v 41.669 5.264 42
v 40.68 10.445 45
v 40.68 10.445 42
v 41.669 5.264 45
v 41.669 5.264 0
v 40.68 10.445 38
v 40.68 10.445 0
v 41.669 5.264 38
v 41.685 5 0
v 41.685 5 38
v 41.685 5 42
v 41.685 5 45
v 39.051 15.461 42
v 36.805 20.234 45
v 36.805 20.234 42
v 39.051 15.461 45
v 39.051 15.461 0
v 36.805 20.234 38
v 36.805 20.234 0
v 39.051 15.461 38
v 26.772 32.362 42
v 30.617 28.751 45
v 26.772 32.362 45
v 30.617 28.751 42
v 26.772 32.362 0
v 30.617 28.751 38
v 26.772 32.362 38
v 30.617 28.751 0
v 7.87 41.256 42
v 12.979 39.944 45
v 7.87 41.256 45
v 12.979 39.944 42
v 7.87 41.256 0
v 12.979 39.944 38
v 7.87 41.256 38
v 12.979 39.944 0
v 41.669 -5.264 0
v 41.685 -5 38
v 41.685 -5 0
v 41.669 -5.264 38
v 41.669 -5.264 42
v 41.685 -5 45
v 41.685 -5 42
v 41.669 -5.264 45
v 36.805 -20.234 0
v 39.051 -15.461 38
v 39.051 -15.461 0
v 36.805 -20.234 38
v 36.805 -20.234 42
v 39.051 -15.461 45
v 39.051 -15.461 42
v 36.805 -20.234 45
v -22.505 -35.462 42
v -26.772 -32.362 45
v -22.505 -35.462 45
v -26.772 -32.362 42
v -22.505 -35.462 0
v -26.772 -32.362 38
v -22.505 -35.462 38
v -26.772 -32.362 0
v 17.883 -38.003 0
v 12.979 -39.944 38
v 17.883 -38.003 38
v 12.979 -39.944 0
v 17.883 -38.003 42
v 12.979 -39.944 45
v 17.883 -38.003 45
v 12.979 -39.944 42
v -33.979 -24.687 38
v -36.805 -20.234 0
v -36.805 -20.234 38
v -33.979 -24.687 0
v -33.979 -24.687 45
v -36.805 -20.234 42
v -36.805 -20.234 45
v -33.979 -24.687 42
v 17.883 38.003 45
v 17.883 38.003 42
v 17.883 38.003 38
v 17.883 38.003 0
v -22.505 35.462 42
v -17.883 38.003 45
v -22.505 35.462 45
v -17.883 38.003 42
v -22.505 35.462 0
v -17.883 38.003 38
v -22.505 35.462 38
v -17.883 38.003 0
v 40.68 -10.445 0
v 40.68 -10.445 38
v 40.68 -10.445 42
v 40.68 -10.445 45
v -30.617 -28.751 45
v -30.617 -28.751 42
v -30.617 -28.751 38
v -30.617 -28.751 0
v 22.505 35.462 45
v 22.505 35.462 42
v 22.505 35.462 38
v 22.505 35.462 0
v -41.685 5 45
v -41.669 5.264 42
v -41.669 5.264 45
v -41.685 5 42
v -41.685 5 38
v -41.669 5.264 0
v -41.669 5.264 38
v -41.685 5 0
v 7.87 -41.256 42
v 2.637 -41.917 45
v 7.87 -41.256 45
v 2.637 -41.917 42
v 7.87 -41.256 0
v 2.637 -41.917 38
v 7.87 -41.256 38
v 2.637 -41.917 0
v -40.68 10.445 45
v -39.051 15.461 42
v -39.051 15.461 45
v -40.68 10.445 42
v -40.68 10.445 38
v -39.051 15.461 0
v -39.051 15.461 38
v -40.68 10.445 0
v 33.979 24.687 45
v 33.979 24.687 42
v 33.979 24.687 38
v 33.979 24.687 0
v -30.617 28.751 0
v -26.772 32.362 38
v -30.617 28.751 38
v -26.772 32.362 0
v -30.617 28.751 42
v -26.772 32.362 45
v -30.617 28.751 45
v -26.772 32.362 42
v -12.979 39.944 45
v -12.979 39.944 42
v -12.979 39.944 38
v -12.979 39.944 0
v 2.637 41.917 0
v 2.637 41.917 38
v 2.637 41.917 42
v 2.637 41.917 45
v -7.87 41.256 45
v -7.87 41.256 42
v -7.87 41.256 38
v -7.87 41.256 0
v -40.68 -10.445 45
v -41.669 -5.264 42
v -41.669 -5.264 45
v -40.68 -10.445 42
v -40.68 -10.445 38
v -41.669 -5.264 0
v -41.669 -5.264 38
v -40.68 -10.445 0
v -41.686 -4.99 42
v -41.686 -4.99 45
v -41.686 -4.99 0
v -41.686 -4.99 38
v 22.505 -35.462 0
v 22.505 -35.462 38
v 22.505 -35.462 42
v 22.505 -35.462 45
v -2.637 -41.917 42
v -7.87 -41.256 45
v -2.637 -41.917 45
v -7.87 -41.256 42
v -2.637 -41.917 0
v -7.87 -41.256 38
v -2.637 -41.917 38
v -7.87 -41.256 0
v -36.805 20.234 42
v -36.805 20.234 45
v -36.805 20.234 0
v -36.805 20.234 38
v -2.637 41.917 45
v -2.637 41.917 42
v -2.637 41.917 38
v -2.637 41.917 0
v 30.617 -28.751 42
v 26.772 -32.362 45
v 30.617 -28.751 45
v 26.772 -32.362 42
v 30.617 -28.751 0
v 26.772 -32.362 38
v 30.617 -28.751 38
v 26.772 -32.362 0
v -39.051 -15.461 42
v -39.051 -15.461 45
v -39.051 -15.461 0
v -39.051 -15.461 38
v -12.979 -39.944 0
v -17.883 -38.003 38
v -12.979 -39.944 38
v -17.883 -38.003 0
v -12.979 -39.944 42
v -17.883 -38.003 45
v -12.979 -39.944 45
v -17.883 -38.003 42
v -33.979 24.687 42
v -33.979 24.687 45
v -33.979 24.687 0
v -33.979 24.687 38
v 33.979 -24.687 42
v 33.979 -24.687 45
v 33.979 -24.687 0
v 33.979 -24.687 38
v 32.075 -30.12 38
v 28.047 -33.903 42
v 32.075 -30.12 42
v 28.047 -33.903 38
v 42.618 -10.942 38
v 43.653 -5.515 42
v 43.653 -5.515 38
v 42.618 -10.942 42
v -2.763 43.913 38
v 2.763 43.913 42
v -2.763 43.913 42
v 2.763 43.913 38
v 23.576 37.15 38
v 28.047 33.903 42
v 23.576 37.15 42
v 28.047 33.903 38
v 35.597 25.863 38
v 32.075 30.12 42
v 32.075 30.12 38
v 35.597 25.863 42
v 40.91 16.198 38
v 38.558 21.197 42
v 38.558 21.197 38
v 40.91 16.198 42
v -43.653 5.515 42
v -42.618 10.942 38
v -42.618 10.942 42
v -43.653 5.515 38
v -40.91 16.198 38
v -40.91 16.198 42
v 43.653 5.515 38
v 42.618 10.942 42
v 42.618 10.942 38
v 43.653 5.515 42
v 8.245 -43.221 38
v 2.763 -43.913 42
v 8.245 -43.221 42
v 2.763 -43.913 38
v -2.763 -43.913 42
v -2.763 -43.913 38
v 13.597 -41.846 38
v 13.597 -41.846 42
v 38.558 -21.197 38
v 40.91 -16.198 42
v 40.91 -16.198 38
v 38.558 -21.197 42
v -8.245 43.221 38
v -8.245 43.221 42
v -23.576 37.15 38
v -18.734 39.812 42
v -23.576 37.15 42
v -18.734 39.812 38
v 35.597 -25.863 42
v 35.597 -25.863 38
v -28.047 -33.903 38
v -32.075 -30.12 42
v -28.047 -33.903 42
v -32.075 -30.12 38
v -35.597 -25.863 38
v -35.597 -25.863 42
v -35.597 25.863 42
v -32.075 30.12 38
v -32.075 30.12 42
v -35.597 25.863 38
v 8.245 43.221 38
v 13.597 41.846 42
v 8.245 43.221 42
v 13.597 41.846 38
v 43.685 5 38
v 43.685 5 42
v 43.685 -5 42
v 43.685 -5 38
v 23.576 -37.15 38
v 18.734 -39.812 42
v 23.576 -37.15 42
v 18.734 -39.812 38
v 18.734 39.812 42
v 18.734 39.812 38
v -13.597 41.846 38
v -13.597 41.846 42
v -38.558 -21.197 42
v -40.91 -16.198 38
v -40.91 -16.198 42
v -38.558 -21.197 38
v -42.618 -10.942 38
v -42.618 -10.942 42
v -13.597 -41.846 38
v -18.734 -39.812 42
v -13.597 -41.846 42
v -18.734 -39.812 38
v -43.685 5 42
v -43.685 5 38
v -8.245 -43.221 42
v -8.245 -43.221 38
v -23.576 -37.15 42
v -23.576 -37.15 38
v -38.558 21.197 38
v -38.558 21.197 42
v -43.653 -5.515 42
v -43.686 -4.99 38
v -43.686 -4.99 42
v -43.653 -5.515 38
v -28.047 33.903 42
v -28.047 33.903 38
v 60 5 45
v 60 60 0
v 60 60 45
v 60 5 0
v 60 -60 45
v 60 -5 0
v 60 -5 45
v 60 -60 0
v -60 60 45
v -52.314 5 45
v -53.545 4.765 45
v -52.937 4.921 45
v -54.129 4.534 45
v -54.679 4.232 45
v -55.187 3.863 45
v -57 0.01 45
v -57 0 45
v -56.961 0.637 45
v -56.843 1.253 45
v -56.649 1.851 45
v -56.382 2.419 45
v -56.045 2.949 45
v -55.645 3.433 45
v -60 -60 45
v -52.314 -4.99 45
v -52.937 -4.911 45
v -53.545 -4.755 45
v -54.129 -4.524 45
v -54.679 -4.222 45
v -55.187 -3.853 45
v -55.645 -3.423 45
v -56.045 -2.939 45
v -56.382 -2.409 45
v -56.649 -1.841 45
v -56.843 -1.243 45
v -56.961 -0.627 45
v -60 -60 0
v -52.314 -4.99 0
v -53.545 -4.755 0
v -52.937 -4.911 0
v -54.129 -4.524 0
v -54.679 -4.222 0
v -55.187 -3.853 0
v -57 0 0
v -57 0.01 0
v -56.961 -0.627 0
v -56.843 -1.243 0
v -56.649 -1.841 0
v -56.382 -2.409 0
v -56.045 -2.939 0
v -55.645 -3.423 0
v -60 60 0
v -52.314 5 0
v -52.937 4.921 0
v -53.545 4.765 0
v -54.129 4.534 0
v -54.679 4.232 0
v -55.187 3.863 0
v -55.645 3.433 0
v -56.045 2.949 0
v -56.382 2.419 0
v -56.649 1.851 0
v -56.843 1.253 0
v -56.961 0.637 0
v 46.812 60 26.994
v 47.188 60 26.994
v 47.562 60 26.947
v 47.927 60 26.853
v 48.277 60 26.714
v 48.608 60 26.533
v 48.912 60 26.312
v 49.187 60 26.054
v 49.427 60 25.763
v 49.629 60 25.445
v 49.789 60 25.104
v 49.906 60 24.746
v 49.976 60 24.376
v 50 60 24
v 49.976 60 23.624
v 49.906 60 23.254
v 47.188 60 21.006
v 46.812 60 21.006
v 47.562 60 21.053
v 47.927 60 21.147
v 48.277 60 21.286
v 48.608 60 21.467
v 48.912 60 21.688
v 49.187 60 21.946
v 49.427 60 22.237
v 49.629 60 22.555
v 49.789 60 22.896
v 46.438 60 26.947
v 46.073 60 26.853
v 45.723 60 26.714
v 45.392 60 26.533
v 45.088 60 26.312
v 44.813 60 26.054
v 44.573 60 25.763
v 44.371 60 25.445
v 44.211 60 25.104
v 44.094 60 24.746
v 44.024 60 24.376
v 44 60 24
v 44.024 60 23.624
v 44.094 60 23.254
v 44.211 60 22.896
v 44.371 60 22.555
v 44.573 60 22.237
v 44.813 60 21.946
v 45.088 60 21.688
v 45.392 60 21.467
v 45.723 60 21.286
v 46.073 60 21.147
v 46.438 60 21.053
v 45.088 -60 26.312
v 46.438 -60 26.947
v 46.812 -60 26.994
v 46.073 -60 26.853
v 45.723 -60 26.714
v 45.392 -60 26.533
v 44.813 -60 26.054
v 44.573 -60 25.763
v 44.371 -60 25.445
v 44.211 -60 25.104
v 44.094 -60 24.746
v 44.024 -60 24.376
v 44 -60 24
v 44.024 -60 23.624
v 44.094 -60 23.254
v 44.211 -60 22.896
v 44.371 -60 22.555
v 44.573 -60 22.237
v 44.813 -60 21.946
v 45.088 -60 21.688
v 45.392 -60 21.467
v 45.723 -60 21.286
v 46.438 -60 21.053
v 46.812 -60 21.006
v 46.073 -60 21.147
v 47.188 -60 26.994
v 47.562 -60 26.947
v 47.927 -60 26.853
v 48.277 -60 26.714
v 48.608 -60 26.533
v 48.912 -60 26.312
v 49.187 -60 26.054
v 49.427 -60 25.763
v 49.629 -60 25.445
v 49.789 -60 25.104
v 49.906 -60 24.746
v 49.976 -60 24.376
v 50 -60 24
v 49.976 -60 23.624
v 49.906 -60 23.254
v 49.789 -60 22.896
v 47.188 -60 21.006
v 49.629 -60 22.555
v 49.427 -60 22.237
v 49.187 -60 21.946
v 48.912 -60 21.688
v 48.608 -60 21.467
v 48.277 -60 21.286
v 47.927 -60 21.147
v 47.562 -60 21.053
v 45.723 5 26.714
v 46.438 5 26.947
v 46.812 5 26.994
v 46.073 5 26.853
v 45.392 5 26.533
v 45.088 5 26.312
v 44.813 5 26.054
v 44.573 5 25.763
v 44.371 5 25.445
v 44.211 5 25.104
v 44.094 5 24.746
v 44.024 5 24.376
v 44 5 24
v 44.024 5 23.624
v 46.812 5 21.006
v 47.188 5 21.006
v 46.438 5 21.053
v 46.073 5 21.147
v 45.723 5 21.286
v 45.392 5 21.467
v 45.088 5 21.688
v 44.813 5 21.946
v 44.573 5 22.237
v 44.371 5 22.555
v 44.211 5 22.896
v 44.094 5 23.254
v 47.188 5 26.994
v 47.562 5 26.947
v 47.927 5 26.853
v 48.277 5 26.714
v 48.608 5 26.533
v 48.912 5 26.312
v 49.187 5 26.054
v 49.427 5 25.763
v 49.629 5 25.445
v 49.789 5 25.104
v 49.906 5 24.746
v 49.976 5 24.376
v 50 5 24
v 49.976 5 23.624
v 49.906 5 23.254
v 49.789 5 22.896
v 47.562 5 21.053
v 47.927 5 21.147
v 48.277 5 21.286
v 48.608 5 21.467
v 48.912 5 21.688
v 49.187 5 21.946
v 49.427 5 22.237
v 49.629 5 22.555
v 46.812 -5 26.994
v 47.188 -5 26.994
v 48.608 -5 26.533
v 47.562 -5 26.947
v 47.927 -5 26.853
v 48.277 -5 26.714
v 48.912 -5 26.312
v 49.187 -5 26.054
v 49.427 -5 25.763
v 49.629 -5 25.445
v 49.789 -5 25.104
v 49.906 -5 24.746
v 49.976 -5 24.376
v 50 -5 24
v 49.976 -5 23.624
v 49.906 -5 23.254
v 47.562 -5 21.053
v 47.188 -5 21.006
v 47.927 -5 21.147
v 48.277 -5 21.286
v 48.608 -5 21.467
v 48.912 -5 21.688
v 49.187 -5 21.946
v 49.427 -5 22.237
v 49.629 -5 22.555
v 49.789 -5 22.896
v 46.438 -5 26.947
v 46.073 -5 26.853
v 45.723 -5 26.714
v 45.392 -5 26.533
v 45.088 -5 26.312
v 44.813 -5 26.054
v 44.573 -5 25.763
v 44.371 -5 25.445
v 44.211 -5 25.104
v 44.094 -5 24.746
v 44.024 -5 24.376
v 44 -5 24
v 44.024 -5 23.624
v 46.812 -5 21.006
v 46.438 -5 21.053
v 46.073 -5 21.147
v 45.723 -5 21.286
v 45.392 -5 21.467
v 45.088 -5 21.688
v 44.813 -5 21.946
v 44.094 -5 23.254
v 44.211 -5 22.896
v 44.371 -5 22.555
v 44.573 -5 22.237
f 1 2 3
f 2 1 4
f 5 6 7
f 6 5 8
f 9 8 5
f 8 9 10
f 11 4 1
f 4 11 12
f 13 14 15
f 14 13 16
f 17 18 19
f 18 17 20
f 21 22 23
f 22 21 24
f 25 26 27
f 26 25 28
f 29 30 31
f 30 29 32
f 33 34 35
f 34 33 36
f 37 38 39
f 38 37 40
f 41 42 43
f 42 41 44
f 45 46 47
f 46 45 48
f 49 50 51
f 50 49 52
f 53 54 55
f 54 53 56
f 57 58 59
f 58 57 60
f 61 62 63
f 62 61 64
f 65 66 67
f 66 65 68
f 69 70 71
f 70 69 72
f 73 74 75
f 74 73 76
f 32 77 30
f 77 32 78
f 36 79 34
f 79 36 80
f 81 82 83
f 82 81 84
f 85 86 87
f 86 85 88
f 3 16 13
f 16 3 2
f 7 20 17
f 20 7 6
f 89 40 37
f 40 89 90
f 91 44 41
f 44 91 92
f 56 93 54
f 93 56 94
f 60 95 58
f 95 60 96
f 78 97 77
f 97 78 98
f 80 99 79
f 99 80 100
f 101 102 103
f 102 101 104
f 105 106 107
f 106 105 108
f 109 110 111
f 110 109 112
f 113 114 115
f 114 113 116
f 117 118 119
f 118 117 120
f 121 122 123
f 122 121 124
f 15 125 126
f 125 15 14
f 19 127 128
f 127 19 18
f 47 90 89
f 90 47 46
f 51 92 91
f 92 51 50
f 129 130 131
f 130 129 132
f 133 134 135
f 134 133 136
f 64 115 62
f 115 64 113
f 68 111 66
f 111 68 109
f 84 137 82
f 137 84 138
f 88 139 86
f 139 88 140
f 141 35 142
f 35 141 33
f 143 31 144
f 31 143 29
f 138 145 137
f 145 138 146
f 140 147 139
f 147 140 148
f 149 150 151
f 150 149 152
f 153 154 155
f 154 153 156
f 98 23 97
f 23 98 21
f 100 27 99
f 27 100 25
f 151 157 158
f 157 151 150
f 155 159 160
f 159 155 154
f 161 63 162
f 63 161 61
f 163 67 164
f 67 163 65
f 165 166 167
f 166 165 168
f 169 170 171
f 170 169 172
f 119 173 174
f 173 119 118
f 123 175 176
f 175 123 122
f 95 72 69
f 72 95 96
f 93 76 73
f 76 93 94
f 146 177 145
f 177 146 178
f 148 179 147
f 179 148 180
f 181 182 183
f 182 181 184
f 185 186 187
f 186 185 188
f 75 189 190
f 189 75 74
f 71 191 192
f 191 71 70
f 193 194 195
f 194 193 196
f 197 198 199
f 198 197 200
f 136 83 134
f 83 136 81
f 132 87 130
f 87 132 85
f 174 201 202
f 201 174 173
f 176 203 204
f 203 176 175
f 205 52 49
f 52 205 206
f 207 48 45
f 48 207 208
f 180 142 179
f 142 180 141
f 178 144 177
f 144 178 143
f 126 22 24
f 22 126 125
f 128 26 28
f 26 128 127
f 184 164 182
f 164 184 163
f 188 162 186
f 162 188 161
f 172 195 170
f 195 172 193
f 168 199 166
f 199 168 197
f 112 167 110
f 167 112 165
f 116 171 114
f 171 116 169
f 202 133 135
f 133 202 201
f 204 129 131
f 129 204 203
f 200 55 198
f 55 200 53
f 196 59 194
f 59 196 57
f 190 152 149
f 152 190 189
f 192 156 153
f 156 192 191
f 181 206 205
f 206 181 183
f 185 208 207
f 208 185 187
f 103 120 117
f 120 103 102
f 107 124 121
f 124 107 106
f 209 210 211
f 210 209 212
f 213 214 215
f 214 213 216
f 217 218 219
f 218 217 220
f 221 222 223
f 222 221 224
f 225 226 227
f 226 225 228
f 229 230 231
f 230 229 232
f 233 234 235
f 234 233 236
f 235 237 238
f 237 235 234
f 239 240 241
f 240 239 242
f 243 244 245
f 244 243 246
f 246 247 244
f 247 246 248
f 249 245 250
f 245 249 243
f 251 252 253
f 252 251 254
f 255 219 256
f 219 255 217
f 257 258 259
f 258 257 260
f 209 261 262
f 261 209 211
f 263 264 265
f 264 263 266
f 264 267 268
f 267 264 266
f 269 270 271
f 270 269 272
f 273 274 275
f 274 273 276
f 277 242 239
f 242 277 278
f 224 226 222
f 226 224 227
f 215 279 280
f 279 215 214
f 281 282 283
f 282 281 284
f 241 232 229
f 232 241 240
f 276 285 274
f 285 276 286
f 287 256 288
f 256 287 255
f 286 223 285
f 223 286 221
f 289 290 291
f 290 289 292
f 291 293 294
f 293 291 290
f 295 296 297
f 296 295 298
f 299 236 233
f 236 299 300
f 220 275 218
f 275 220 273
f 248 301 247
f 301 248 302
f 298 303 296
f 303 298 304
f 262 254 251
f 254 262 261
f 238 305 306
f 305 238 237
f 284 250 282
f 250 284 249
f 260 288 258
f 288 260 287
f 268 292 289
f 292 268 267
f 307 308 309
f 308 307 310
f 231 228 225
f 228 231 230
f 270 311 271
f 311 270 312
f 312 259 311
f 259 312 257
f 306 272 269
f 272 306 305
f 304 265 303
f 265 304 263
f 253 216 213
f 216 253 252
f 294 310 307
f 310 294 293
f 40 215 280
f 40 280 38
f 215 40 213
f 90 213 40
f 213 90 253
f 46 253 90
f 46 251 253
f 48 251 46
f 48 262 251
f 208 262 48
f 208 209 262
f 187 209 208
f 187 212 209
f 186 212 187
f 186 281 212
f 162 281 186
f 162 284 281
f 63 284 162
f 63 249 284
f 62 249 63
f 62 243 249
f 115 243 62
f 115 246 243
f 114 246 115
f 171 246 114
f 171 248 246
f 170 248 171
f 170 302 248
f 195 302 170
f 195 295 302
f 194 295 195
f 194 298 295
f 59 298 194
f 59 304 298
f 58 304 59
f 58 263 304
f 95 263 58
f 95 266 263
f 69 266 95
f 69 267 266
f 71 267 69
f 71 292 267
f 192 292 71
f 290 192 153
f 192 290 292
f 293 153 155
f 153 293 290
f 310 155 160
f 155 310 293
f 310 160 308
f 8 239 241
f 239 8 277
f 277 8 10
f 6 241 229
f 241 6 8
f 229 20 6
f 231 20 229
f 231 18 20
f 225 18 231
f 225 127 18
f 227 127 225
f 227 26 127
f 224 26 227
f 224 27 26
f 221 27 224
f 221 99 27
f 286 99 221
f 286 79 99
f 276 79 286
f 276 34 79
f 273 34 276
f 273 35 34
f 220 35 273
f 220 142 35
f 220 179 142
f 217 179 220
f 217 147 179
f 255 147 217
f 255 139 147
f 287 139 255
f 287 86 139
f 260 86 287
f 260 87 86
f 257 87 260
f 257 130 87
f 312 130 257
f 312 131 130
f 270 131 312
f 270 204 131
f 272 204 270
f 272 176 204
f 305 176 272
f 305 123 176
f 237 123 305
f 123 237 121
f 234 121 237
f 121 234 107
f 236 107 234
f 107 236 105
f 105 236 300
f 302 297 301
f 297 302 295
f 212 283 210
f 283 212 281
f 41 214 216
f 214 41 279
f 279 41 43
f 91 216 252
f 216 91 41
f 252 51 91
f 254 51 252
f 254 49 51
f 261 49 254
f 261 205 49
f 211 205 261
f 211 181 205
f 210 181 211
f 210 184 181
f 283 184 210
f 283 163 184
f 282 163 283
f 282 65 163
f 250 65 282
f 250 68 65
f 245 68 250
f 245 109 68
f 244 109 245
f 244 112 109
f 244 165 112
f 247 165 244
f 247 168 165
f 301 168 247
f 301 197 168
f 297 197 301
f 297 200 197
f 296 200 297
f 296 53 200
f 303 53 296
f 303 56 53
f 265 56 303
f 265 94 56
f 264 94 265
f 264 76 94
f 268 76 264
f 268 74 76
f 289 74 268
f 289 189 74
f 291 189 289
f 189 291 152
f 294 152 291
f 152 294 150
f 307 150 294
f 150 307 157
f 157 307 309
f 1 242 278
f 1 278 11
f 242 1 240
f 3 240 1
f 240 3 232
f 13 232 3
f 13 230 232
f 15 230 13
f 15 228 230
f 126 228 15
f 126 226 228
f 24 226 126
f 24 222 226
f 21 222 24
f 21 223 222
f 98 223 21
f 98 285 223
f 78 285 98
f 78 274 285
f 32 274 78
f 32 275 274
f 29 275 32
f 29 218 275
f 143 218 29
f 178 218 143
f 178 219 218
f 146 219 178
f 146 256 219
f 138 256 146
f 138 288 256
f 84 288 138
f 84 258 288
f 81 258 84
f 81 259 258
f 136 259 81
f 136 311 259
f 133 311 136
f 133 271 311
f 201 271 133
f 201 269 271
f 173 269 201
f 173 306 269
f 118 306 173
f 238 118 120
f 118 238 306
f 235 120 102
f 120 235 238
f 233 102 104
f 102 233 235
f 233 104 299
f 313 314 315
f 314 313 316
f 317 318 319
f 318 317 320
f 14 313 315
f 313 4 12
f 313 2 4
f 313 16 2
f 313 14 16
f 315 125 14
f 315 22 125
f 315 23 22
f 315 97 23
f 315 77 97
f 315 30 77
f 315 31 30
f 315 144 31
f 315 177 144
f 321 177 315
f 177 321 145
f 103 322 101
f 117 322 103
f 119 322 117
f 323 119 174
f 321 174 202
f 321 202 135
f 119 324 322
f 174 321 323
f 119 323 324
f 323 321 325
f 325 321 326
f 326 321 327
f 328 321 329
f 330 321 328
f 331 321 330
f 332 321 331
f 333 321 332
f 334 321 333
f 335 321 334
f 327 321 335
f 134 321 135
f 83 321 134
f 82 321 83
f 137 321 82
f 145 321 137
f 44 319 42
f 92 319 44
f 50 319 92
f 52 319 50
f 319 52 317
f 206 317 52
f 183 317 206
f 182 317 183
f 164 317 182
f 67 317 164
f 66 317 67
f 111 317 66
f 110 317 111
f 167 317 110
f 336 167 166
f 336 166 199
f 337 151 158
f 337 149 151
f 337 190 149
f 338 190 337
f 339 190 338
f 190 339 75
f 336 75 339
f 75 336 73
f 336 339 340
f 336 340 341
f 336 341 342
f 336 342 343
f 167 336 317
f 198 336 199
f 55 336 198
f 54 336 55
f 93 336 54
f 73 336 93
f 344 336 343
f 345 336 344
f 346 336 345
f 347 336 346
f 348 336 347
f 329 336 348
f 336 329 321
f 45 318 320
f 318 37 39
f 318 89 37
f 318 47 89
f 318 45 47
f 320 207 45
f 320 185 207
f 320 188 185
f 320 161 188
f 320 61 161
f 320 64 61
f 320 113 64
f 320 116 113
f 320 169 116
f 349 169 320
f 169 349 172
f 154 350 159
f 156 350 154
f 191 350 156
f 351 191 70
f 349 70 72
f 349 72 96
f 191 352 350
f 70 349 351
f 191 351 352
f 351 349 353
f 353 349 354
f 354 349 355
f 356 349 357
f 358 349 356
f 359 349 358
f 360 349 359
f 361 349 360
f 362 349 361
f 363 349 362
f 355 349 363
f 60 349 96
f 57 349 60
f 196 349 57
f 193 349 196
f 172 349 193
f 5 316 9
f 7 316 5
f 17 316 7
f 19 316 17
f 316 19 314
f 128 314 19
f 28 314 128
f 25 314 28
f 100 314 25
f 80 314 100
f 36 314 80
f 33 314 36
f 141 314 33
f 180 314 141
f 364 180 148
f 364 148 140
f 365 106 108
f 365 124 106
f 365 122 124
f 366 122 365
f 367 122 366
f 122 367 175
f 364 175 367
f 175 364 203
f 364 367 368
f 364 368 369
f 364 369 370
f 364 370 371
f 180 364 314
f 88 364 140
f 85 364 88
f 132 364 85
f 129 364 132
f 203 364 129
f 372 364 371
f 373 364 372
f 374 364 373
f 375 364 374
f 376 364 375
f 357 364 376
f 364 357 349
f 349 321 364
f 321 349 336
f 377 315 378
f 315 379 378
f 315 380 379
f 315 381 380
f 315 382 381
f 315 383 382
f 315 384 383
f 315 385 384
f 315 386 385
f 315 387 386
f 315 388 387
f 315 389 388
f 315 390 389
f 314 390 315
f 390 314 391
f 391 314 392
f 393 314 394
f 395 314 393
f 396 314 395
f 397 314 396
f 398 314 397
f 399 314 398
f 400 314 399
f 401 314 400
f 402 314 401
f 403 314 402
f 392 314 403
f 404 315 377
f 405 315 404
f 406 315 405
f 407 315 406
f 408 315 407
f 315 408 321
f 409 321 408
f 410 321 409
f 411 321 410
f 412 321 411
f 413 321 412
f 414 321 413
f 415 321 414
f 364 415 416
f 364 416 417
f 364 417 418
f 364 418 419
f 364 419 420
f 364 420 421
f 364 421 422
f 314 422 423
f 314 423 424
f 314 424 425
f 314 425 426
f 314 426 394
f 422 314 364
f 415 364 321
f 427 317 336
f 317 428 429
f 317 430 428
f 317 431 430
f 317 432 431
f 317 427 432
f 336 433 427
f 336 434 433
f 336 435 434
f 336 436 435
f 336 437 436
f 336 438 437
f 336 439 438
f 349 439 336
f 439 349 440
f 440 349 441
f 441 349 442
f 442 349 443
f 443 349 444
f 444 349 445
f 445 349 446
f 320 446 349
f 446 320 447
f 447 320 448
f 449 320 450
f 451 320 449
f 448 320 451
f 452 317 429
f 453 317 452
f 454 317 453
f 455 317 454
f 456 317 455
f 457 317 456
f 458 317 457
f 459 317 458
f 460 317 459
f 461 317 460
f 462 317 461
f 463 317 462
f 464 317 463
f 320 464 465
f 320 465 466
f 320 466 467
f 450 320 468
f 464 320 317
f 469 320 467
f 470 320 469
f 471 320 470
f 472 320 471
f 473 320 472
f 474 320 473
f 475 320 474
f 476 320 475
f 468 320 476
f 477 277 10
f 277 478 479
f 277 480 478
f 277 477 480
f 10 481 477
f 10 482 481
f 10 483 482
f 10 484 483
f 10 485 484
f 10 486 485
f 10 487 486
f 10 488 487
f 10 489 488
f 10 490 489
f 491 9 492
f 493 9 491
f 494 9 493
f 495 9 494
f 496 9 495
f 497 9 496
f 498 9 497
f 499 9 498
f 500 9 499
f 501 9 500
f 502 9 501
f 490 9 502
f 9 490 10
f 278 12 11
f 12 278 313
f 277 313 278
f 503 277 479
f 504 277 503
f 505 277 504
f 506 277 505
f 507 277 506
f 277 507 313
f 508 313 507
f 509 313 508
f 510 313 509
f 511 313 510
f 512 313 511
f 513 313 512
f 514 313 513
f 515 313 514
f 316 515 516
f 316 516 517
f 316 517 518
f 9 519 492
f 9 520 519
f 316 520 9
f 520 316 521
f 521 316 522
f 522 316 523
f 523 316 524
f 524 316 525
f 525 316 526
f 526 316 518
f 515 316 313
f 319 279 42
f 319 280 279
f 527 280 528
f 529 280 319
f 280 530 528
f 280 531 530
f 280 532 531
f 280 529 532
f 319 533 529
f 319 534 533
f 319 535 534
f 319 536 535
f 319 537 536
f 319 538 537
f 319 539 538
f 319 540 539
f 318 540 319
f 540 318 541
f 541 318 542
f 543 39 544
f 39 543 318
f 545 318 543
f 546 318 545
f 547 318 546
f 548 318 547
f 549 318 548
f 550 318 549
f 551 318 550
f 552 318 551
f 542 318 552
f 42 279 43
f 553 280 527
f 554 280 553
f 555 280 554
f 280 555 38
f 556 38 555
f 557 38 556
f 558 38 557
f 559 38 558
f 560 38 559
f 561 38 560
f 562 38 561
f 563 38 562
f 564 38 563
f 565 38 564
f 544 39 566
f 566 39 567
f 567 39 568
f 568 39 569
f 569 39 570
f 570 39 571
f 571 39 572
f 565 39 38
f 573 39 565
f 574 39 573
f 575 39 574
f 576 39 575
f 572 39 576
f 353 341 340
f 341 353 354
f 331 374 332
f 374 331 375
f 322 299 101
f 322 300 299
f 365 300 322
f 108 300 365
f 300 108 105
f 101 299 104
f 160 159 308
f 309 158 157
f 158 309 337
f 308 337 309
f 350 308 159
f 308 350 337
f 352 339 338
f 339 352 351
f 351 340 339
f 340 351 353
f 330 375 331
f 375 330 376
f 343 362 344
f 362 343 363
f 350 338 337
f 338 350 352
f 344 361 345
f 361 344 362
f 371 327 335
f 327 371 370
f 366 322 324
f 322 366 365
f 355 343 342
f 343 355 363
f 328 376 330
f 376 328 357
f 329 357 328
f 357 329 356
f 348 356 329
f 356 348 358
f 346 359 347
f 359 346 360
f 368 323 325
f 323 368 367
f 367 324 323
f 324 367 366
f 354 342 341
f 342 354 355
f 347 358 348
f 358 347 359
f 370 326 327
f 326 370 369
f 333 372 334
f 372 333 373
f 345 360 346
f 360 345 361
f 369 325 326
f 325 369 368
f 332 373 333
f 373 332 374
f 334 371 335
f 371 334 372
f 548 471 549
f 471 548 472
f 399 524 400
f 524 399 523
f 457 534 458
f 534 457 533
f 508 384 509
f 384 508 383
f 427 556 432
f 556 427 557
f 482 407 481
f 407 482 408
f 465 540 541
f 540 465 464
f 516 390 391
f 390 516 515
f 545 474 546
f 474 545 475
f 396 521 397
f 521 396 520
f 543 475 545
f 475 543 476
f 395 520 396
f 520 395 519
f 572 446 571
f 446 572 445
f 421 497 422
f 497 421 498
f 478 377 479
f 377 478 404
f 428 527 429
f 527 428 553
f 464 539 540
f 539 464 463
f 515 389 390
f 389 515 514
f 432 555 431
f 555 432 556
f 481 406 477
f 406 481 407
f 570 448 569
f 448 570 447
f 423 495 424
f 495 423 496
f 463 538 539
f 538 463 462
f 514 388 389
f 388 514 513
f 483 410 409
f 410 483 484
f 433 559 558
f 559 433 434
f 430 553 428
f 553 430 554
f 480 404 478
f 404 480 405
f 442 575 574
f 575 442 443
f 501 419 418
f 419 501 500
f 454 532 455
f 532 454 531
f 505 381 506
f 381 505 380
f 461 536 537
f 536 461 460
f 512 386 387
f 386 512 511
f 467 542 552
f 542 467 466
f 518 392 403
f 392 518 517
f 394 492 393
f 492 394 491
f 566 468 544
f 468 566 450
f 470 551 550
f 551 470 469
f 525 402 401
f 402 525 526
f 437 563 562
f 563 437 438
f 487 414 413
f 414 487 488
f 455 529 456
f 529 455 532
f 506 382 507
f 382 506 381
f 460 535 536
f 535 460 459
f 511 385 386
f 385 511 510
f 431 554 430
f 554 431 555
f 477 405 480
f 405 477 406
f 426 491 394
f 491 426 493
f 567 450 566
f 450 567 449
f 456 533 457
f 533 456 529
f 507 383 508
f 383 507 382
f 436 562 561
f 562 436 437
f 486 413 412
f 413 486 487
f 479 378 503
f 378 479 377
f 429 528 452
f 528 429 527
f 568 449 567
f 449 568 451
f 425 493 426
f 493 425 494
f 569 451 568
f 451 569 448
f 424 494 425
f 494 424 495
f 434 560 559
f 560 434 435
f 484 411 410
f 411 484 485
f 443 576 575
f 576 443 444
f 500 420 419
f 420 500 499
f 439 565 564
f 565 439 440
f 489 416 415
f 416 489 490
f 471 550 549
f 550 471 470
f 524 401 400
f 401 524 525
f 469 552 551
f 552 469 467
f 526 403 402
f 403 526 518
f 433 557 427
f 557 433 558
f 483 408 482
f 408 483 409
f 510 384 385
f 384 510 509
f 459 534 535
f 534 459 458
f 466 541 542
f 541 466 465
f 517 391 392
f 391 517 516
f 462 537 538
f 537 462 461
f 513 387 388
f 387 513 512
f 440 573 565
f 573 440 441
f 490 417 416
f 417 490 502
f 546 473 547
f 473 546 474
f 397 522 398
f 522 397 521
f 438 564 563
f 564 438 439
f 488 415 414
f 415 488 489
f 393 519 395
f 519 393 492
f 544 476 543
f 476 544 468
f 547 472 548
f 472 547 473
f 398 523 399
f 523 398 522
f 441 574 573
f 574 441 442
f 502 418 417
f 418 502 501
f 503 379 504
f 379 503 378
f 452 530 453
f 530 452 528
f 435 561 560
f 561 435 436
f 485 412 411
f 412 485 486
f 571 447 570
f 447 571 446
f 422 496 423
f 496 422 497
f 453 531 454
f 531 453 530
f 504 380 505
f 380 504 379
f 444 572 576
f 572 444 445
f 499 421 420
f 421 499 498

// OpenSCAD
//assuming an import of 1unit = 1mm
$fn=50;

$baseWidth = 120;
$baseDepth = $baseWidth;

$canRadius = 42;
$canLip = 2;

translate([-($baseWidth/2), -($baseDepth/2),0]){
    difference(){
        cube([$baseWidth,$baseDepth,45]);
        
        //can
        translate([($baseWidth/2), ($baseDepth/2), -10]){
            //can
            cylinder(200,$canRadius, $canRadius);
            //lip
            translate([0,0,38+10])
            cylinder(4,$canRadius+$canLip, $canRadius+$canLip);
        }
        
        //clamp cuts
        translate([($baseWidth/2), ($baseDepth/2)-5, -5])
            cube([($baseWidth/2)+10, 10, ($baseWidth/2)]);
        //hinge
        translate([($baseWidth/2)-$canRadius-10, ($baseDepth/2), -5])
            minkowski(){
                cube([($baseWidth/2)-10, .01, ($baseWidth/2)]);
                sphere(5);
            }
        
        //bolt
        translate([$canRadius+$baseWidth/2 + 5,$baseDepth+10,24])
            rotate([90,0,0])
                #cylinder($baseDepth+20, 3, 3);
        
    }
}
